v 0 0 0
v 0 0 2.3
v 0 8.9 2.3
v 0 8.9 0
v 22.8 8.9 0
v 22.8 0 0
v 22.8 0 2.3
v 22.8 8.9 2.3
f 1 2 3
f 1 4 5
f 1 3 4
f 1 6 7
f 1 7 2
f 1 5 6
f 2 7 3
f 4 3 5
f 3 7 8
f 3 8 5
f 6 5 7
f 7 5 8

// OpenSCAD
/* Warning, this is a very basic generator with a lot of approximation 
input data : [FCCSP, CZC, 22.80x8.90x2.30mm, 352, , B, C04-25517B]
generated by com.zoubworld.electronics.cad.model3d.Basic
Date : Sun Feb 15 10:50:49 CET 2026
*/

//body
color("black")
translate([0,0,0])
cube([22.8,8.9,2.3], center=false);
